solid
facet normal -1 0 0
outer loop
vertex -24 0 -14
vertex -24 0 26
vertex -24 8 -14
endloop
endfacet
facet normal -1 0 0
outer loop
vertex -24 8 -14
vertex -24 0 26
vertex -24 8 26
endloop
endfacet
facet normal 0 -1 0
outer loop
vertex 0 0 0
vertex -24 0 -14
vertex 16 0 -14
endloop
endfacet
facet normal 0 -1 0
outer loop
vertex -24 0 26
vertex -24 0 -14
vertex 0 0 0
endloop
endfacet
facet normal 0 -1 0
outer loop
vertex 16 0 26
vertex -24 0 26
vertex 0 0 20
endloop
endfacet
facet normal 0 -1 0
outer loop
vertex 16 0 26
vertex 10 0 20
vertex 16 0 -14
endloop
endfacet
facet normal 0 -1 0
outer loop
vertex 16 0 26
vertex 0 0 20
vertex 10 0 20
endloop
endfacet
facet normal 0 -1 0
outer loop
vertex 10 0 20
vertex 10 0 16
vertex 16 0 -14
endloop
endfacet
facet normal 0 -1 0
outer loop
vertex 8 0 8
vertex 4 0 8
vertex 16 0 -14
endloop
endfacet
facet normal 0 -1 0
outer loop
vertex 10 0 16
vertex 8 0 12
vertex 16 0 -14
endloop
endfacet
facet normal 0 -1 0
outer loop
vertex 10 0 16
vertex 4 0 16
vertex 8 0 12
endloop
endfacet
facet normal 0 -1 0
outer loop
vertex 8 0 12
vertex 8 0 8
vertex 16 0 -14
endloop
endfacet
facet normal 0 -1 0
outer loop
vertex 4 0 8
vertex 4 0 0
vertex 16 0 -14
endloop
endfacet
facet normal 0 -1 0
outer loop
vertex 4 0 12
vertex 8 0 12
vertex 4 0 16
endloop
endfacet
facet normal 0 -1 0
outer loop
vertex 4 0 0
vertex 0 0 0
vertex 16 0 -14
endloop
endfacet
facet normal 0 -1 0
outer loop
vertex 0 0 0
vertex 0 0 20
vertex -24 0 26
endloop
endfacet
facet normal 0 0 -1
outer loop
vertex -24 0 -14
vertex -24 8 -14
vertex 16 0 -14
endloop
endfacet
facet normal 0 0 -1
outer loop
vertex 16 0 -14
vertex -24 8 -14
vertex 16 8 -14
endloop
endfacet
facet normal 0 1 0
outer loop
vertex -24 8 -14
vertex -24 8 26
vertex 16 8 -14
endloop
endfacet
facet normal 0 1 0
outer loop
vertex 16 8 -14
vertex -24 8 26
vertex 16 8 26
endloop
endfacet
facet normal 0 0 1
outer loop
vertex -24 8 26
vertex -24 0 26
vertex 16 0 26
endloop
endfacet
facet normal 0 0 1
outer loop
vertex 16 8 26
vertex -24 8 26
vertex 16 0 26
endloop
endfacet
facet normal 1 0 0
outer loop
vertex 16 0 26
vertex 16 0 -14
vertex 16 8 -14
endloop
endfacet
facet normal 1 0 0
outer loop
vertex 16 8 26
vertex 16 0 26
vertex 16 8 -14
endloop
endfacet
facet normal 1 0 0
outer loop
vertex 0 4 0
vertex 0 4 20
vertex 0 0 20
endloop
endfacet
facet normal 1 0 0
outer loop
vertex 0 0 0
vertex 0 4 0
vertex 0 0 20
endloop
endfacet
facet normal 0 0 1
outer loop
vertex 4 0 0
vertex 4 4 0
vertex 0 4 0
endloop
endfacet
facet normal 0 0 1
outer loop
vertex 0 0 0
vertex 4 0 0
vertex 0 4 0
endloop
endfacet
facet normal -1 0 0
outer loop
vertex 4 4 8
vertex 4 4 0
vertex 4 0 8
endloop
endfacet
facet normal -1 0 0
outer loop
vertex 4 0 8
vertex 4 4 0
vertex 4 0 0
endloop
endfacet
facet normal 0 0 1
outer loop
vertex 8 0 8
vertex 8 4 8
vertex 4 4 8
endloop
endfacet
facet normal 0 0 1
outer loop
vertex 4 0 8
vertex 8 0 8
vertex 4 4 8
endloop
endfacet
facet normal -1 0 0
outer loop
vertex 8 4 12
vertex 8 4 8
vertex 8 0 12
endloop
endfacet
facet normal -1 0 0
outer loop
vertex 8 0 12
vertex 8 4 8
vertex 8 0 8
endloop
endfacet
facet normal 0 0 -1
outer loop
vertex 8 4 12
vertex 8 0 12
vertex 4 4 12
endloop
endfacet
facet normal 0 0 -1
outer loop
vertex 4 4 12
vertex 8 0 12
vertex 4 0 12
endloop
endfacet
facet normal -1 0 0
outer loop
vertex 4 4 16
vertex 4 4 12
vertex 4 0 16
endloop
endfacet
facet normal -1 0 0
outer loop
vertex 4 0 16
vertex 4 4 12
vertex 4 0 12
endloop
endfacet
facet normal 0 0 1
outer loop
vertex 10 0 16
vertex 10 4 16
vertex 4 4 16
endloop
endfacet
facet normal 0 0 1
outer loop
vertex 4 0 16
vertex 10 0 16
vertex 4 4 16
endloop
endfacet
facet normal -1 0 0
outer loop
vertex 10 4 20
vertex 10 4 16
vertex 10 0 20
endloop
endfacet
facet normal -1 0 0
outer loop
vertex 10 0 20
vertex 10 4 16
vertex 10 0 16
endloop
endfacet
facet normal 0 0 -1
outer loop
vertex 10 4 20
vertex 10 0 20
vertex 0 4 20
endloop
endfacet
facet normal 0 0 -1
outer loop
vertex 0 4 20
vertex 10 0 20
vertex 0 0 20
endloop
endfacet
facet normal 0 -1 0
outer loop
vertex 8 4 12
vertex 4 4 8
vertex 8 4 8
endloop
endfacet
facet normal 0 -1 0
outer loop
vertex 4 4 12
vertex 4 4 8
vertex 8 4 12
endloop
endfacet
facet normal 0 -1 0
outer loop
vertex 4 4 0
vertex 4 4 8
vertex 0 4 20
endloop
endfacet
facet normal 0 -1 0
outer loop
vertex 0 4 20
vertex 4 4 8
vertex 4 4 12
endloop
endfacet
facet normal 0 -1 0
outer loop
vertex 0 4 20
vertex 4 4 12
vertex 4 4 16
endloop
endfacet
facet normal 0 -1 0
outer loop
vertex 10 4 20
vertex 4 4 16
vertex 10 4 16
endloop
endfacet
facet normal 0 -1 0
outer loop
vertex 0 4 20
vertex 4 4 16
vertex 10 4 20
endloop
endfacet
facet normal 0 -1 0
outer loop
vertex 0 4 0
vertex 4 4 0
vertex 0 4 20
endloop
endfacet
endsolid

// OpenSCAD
//difference ()
//{
//        cube ([400, 400, 10], $fn=1000) ;
//        translate ([-10, -10, -5]) cube ([50, 50, 30], $fn=1000) ;
//}
//        
//difference ()
//{
//        cylinder (h = 40, r=10, center = true, $fn=100);
//        rotate ([90,0,0]) cylinder (h = 40, r=9, center = true, $fn=100);
//}

difference ()
{

translate ([-24, 0, -14]) cube ([40, 8, 40]) ;

cube ([4, 4, 20]) ;
translate ([4, 0, 8]) cube ([4, 4, 4]) ;
translate ([4, 0, 16]) cube ([6, 4, 4]) ;

}
